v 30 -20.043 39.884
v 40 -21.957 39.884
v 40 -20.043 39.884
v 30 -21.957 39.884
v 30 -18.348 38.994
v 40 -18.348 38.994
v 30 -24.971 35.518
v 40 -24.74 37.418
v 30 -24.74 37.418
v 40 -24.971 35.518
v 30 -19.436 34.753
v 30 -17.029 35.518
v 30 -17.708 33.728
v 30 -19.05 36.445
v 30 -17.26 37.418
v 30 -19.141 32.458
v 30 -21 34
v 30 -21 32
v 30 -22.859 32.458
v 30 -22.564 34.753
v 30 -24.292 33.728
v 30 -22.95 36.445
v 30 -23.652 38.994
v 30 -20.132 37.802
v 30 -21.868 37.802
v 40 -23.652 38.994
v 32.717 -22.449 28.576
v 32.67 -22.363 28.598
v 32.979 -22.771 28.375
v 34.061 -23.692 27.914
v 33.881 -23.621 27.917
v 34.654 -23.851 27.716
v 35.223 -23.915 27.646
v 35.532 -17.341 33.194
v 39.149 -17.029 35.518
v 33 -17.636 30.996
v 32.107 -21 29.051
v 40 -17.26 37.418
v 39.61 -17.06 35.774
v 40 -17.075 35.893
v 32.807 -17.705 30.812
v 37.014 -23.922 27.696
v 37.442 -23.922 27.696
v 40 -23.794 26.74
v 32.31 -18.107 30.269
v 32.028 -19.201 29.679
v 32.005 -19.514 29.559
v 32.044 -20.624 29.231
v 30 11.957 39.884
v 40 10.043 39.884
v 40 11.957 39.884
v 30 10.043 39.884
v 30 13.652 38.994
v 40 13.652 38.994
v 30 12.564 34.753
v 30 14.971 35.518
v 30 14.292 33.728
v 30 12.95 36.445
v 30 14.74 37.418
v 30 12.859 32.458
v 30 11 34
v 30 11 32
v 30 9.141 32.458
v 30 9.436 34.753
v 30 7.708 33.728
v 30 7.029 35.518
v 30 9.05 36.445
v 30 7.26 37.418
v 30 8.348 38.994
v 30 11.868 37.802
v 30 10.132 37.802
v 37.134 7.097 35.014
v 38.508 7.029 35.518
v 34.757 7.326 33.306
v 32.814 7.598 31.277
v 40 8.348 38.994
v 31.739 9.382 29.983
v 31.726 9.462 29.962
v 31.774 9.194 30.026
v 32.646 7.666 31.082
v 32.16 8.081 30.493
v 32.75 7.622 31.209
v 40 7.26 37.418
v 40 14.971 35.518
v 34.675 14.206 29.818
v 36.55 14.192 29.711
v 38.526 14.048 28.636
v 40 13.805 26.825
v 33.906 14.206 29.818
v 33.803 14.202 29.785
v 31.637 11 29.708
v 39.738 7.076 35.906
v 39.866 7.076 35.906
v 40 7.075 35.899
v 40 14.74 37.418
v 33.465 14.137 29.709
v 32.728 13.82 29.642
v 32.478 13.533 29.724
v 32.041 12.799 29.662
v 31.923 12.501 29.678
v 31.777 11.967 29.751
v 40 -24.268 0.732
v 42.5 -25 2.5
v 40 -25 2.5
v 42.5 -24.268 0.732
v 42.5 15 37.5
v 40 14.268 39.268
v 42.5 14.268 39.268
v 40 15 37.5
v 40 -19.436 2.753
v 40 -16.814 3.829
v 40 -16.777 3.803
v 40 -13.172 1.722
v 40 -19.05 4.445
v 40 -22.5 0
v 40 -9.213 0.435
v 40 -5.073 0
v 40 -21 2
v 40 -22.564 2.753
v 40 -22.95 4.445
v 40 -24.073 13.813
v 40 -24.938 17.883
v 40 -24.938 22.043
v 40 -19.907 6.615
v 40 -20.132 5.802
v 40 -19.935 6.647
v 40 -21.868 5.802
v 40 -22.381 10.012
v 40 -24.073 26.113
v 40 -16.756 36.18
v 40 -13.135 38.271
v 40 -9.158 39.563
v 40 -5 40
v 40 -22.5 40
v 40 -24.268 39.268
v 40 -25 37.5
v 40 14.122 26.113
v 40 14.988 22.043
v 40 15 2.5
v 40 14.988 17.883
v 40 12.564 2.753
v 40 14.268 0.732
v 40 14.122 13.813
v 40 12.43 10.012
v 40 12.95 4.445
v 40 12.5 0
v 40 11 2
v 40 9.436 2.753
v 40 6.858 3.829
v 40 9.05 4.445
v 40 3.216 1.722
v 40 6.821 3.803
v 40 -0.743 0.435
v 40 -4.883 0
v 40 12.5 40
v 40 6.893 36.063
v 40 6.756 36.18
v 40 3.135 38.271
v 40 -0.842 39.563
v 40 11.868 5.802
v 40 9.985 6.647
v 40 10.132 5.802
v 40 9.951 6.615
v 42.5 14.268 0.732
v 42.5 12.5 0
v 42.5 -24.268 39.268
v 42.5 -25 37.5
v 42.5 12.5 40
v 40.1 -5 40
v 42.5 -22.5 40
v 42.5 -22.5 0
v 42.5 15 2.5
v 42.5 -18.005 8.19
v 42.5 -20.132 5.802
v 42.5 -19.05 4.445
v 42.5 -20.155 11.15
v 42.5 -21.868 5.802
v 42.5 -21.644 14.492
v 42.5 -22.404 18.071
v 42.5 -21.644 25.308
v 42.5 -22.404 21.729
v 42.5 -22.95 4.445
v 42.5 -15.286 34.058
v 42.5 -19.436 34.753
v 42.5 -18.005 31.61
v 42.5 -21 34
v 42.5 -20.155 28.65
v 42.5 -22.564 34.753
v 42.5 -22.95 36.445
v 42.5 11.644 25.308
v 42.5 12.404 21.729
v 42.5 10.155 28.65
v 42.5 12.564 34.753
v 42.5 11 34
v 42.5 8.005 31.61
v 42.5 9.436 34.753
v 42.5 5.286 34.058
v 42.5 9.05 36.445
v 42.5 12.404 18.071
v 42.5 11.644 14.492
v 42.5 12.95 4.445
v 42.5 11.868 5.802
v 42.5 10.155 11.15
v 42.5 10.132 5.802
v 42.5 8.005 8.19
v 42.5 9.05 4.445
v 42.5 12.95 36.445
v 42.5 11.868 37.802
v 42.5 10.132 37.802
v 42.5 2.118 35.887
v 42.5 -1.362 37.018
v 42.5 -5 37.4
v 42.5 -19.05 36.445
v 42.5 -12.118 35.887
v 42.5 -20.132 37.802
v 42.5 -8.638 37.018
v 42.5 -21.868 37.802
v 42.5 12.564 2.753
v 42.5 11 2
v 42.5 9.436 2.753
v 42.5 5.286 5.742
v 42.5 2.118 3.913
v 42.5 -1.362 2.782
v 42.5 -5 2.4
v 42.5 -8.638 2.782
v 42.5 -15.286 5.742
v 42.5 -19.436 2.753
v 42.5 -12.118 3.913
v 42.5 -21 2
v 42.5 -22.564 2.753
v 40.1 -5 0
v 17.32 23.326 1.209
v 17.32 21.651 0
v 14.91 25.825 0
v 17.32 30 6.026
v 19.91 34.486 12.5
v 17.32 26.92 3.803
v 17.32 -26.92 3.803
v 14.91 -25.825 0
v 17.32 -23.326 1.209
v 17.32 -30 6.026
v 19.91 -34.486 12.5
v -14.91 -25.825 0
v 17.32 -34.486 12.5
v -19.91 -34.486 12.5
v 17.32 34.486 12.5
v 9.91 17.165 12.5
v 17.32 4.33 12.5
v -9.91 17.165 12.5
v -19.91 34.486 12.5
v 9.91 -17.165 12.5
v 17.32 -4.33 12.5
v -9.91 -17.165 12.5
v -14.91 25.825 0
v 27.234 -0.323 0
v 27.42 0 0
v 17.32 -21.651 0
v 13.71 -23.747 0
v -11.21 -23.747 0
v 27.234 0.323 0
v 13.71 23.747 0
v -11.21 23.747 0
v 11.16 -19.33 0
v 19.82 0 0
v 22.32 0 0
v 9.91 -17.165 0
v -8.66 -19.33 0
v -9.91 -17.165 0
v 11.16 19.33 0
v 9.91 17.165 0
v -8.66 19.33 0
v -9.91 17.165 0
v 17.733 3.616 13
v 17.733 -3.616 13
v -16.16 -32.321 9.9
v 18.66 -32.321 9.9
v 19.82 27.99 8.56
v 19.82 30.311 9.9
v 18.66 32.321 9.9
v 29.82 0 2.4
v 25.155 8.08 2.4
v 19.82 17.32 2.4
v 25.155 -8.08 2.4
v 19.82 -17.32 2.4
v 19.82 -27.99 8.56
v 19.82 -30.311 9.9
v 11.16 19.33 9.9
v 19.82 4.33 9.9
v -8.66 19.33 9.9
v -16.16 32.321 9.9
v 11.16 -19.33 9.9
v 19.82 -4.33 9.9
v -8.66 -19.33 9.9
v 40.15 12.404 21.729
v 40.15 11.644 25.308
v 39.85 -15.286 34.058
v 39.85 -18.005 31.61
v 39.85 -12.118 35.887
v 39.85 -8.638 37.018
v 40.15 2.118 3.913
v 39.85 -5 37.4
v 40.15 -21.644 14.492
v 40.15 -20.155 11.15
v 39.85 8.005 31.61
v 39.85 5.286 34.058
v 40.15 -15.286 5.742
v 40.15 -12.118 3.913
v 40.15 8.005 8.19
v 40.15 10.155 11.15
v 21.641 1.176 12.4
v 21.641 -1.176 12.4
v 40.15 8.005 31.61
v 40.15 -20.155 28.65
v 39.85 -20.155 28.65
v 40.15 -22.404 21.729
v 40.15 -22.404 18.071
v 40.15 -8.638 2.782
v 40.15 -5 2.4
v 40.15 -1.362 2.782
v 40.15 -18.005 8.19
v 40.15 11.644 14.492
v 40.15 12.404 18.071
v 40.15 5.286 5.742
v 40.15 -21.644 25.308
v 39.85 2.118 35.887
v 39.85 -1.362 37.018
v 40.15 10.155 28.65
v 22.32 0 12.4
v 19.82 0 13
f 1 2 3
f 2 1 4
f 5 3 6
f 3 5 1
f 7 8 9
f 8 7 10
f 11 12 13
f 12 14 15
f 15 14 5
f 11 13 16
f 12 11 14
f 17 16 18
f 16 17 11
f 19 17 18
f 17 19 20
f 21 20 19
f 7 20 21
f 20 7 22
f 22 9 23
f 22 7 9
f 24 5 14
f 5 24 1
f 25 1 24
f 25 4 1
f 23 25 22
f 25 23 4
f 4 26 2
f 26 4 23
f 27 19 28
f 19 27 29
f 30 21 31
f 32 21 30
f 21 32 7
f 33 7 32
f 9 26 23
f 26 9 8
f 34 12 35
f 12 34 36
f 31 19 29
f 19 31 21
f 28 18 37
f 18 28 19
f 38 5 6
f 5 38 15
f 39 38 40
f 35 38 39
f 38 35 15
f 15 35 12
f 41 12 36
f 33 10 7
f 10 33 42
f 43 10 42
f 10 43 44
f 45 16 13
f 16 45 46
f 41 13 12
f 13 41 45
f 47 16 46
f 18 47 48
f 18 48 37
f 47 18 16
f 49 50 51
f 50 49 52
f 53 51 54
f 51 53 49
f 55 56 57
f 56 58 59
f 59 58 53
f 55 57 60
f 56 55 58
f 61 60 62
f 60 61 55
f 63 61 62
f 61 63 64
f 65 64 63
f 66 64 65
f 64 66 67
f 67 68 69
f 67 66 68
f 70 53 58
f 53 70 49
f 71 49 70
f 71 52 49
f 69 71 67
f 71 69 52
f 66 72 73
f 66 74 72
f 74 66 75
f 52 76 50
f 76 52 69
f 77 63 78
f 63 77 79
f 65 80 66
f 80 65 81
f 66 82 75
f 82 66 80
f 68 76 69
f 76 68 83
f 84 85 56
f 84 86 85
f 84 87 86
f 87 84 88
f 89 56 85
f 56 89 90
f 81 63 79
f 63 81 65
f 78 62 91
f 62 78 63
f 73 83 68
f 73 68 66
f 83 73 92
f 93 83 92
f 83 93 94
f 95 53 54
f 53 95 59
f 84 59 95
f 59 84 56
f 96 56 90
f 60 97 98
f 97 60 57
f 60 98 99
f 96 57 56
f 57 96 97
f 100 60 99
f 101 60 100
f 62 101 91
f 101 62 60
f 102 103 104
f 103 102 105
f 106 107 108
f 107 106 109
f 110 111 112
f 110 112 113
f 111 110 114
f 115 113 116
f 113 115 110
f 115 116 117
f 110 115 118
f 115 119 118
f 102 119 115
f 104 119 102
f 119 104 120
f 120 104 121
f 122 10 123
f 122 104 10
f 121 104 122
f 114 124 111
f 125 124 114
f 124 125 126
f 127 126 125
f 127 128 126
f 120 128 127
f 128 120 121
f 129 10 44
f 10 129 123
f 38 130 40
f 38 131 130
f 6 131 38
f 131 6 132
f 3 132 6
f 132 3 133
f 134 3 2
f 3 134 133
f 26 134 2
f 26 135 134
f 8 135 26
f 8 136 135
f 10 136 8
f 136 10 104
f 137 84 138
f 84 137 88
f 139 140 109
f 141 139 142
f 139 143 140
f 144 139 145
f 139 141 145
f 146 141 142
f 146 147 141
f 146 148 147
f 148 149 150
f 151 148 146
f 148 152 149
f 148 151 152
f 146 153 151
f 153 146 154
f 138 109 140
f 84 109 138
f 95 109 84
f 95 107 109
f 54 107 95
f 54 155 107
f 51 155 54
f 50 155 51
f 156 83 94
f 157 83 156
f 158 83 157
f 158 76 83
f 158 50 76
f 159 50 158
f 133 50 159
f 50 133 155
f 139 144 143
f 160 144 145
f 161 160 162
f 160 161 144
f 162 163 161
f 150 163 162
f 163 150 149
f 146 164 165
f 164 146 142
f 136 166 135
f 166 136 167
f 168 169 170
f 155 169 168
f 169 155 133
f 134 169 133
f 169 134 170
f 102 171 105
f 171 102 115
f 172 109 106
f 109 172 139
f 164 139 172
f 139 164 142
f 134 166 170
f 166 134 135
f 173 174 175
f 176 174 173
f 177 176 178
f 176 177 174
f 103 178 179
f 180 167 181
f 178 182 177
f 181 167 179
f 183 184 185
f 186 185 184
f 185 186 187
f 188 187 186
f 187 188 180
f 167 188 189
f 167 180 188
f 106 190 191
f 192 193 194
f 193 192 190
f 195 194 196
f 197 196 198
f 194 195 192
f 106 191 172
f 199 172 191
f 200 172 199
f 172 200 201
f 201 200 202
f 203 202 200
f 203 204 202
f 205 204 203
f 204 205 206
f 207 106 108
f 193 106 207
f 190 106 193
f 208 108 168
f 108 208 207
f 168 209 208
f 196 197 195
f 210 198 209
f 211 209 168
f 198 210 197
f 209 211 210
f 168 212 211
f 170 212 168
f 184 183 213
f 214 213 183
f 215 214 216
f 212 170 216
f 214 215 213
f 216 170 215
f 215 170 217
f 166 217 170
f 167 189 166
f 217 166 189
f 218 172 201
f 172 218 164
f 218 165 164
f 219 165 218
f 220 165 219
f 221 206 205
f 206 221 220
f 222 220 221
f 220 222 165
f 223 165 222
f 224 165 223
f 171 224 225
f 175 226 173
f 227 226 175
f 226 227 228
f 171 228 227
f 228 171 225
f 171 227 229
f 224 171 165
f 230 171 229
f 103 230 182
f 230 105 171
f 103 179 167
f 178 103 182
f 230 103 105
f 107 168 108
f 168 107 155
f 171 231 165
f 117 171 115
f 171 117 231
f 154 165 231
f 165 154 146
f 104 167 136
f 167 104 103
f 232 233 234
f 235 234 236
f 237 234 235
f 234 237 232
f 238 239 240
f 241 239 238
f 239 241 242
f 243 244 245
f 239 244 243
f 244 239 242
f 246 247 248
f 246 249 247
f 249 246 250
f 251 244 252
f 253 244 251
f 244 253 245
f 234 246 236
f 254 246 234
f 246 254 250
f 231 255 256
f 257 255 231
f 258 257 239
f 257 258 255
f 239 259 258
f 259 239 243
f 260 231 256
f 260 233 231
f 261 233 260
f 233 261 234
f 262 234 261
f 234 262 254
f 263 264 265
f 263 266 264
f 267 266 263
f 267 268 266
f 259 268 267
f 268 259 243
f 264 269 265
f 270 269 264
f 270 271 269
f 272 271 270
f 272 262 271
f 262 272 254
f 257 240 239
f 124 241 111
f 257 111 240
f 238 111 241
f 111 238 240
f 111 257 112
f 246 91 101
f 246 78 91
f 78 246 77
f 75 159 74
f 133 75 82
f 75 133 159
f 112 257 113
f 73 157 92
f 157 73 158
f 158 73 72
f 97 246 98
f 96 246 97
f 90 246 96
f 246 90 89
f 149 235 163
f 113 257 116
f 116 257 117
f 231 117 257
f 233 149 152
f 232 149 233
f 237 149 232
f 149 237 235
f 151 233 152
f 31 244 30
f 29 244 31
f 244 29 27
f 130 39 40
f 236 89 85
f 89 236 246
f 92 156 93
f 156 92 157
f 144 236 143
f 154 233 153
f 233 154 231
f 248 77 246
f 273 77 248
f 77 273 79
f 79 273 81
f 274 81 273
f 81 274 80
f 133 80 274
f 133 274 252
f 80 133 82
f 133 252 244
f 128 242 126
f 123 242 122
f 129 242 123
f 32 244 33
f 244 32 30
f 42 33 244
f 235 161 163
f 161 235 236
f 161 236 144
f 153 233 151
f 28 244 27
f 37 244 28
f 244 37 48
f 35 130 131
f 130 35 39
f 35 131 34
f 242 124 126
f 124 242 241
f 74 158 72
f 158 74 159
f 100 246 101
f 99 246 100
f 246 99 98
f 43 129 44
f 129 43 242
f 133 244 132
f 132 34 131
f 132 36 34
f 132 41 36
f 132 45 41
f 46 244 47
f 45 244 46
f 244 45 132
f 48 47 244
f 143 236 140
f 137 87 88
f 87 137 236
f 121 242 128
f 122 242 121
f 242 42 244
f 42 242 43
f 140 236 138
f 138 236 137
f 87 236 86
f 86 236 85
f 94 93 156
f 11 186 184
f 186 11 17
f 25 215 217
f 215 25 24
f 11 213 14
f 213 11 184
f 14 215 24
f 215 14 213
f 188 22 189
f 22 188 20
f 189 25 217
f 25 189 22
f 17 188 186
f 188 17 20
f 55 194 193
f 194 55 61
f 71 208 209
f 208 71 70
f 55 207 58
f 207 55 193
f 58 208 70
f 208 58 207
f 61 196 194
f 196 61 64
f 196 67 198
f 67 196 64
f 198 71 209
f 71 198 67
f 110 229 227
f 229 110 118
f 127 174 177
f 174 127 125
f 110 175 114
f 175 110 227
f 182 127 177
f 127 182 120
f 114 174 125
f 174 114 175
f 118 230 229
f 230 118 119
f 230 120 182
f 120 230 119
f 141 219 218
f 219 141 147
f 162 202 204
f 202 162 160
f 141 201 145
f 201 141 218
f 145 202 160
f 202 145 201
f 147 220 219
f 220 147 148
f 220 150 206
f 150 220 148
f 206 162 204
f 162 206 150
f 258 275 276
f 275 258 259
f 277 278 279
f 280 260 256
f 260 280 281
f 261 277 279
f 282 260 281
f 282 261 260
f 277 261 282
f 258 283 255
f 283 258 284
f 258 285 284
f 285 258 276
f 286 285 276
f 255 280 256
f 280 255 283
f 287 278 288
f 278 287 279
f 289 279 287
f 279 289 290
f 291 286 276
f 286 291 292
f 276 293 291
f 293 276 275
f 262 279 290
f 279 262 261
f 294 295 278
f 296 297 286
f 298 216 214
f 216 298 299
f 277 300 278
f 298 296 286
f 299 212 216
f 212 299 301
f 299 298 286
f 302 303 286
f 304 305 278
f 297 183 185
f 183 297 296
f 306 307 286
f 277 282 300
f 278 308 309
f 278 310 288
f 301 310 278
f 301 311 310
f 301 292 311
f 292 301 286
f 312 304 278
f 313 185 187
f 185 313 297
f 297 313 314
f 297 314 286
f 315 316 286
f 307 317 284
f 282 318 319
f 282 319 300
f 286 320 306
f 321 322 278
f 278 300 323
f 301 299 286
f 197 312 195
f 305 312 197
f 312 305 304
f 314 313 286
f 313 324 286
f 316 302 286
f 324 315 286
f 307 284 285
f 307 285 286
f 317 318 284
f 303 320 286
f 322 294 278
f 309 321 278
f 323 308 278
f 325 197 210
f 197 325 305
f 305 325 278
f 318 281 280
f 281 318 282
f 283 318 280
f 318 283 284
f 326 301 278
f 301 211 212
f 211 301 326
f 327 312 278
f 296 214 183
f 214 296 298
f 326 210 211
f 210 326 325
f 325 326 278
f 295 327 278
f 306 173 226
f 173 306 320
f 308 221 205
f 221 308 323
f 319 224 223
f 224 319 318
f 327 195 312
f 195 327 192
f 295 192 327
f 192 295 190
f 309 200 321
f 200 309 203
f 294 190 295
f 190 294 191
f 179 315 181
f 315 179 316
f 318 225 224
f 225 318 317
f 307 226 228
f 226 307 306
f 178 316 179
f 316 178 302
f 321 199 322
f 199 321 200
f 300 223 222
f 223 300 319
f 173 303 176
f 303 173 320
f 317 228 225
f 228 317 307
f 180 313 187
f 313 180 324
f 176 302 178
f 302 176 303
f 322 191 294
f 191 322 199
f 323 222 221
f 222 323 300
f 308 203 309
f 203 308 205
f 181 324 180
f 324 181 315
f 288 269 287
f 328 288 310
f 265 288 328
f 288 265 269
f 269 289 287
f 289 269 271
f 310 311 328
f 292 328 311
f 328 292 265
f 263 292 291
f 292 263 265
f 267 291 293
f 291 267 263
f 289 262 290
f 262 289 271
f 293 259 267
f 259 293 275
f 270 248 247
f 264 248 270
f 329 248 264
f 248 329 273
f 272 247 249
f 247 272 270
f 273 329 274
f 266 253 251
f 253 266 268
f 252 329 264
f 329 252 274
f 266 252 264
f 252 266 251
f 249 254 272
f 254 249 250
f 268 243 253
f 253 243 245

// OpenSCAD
hot_rad = 30/2/cos(30);
hotend_x=25;
fan_x = 15;

hotend_y=-5;

thickness = 10;
wall=2.5;

fan_hole = (40-wall-wall)/2;
fan_z = fan_hole+wall;

fan_mount();

%cylinder(r=hot_rad, h=20, center=true);

m3_cap_rad = 4;
m3_rad = 2;

facets = 6;

module fan_mount(){
    difference(){
        union(){
            //core
            cylinder(r1=hot_rad+thickness+wall, r2=hot_rad+thickness*2+wall, h=thickness+wall, $fn=facets);
            
            hull(){
                intersection(){
                    cylinder(r1=hot_rad+thickness+wall, r2=hot_rad+thickness*2+wall, h=thickness+wall, $fn=facets);
                    translate([50+hot_rad,0,50]) cube([100,100,100], center=true);
                }
                translate([hotend_x+fan_x,hotend_y,fan_z]) rotate([0,90,0]) cylinder(r=fan_hole+wall, h=.1);
            }
            
            //fan mount
            translate([hotend_x+fan_x,hotend_y,20]) rotate([0,90,0]){
                hull() for(i=[0:90:359]) rotate([0,0,i]) {
                    translate([20-wall,20-wall,0]) cylinder(r=wall,h=wall);
                }
            
                //lugs
                for(i=[-16, 16]) hull(){
                    translate([-16,i,-10]) cylinder(r=m3_cap_rad, h=11);
                    translate([0,i,0]) cylinder(r=m3_cap_rad/2, h=1);
                }
            }
        }
        
        //center cutout
        translate([0,0,-.5]) cylinder(r=hot_rad+wall, h=thickness+wall+1, $fn=facets);
        
        //front cutout
        translate([-(hot_rad+thickness*2+wall),0,0]) cylinder(r=hot_rad+thickness*2+wall, h=thickness+wall*10, center=true, $fn=facets);
        
        //fan holes
        translate([hotend_x+fan_x,hotend_y,20]) rotate([0,90,0]){
            for(i=[-16, 16]) {
                translate([-16,i,-10-.1]) cylinder(r=m3_rad, h=11+wall);
            }
            for(j=[-16, 16]){
                translate([16,j,-1-.1]) cylinder(r=m3_rad, h=2+wall);
            }
        }
        
        //air path
        translate([0,0,-.1]) difference(){
            union(){
                cylinder(r1=hot_rad+thickness, r2=hot_rad+thickness*2, h=thickness, $fn=facets);
                hull(){
                    intersection(){
                        cylinder(r1=hot_rad+thickness, r2=hot_rad+thickness*2, h=thickness, $fn=6);
                        translate([50+hot_rad+wall,0,50+wall]) cube([100,100,100], center=true);
                    }
                    translate([hotend_x+fan_x,hotend_y,fan_z]) rotate([0,90,0]) cylinder(r=fan_hole, h=.3, center=true);
                }
                translate([hotend_x+fan_x,hotend_y,fan_z]) rotate([0,90,0]) cylinder(r=fan_hole, h=wall+1);
            }
            cylinder(r=hot_rad+wall+wall, h=thickness+wall, $fn=facets);
            translate([-(hot_rad+thickness*2),0,0]) cylinder(r=hot_rad+thickness*2+wall, h=thickness+wall*10, center=true, $fn=facets);
        }
    }
}
